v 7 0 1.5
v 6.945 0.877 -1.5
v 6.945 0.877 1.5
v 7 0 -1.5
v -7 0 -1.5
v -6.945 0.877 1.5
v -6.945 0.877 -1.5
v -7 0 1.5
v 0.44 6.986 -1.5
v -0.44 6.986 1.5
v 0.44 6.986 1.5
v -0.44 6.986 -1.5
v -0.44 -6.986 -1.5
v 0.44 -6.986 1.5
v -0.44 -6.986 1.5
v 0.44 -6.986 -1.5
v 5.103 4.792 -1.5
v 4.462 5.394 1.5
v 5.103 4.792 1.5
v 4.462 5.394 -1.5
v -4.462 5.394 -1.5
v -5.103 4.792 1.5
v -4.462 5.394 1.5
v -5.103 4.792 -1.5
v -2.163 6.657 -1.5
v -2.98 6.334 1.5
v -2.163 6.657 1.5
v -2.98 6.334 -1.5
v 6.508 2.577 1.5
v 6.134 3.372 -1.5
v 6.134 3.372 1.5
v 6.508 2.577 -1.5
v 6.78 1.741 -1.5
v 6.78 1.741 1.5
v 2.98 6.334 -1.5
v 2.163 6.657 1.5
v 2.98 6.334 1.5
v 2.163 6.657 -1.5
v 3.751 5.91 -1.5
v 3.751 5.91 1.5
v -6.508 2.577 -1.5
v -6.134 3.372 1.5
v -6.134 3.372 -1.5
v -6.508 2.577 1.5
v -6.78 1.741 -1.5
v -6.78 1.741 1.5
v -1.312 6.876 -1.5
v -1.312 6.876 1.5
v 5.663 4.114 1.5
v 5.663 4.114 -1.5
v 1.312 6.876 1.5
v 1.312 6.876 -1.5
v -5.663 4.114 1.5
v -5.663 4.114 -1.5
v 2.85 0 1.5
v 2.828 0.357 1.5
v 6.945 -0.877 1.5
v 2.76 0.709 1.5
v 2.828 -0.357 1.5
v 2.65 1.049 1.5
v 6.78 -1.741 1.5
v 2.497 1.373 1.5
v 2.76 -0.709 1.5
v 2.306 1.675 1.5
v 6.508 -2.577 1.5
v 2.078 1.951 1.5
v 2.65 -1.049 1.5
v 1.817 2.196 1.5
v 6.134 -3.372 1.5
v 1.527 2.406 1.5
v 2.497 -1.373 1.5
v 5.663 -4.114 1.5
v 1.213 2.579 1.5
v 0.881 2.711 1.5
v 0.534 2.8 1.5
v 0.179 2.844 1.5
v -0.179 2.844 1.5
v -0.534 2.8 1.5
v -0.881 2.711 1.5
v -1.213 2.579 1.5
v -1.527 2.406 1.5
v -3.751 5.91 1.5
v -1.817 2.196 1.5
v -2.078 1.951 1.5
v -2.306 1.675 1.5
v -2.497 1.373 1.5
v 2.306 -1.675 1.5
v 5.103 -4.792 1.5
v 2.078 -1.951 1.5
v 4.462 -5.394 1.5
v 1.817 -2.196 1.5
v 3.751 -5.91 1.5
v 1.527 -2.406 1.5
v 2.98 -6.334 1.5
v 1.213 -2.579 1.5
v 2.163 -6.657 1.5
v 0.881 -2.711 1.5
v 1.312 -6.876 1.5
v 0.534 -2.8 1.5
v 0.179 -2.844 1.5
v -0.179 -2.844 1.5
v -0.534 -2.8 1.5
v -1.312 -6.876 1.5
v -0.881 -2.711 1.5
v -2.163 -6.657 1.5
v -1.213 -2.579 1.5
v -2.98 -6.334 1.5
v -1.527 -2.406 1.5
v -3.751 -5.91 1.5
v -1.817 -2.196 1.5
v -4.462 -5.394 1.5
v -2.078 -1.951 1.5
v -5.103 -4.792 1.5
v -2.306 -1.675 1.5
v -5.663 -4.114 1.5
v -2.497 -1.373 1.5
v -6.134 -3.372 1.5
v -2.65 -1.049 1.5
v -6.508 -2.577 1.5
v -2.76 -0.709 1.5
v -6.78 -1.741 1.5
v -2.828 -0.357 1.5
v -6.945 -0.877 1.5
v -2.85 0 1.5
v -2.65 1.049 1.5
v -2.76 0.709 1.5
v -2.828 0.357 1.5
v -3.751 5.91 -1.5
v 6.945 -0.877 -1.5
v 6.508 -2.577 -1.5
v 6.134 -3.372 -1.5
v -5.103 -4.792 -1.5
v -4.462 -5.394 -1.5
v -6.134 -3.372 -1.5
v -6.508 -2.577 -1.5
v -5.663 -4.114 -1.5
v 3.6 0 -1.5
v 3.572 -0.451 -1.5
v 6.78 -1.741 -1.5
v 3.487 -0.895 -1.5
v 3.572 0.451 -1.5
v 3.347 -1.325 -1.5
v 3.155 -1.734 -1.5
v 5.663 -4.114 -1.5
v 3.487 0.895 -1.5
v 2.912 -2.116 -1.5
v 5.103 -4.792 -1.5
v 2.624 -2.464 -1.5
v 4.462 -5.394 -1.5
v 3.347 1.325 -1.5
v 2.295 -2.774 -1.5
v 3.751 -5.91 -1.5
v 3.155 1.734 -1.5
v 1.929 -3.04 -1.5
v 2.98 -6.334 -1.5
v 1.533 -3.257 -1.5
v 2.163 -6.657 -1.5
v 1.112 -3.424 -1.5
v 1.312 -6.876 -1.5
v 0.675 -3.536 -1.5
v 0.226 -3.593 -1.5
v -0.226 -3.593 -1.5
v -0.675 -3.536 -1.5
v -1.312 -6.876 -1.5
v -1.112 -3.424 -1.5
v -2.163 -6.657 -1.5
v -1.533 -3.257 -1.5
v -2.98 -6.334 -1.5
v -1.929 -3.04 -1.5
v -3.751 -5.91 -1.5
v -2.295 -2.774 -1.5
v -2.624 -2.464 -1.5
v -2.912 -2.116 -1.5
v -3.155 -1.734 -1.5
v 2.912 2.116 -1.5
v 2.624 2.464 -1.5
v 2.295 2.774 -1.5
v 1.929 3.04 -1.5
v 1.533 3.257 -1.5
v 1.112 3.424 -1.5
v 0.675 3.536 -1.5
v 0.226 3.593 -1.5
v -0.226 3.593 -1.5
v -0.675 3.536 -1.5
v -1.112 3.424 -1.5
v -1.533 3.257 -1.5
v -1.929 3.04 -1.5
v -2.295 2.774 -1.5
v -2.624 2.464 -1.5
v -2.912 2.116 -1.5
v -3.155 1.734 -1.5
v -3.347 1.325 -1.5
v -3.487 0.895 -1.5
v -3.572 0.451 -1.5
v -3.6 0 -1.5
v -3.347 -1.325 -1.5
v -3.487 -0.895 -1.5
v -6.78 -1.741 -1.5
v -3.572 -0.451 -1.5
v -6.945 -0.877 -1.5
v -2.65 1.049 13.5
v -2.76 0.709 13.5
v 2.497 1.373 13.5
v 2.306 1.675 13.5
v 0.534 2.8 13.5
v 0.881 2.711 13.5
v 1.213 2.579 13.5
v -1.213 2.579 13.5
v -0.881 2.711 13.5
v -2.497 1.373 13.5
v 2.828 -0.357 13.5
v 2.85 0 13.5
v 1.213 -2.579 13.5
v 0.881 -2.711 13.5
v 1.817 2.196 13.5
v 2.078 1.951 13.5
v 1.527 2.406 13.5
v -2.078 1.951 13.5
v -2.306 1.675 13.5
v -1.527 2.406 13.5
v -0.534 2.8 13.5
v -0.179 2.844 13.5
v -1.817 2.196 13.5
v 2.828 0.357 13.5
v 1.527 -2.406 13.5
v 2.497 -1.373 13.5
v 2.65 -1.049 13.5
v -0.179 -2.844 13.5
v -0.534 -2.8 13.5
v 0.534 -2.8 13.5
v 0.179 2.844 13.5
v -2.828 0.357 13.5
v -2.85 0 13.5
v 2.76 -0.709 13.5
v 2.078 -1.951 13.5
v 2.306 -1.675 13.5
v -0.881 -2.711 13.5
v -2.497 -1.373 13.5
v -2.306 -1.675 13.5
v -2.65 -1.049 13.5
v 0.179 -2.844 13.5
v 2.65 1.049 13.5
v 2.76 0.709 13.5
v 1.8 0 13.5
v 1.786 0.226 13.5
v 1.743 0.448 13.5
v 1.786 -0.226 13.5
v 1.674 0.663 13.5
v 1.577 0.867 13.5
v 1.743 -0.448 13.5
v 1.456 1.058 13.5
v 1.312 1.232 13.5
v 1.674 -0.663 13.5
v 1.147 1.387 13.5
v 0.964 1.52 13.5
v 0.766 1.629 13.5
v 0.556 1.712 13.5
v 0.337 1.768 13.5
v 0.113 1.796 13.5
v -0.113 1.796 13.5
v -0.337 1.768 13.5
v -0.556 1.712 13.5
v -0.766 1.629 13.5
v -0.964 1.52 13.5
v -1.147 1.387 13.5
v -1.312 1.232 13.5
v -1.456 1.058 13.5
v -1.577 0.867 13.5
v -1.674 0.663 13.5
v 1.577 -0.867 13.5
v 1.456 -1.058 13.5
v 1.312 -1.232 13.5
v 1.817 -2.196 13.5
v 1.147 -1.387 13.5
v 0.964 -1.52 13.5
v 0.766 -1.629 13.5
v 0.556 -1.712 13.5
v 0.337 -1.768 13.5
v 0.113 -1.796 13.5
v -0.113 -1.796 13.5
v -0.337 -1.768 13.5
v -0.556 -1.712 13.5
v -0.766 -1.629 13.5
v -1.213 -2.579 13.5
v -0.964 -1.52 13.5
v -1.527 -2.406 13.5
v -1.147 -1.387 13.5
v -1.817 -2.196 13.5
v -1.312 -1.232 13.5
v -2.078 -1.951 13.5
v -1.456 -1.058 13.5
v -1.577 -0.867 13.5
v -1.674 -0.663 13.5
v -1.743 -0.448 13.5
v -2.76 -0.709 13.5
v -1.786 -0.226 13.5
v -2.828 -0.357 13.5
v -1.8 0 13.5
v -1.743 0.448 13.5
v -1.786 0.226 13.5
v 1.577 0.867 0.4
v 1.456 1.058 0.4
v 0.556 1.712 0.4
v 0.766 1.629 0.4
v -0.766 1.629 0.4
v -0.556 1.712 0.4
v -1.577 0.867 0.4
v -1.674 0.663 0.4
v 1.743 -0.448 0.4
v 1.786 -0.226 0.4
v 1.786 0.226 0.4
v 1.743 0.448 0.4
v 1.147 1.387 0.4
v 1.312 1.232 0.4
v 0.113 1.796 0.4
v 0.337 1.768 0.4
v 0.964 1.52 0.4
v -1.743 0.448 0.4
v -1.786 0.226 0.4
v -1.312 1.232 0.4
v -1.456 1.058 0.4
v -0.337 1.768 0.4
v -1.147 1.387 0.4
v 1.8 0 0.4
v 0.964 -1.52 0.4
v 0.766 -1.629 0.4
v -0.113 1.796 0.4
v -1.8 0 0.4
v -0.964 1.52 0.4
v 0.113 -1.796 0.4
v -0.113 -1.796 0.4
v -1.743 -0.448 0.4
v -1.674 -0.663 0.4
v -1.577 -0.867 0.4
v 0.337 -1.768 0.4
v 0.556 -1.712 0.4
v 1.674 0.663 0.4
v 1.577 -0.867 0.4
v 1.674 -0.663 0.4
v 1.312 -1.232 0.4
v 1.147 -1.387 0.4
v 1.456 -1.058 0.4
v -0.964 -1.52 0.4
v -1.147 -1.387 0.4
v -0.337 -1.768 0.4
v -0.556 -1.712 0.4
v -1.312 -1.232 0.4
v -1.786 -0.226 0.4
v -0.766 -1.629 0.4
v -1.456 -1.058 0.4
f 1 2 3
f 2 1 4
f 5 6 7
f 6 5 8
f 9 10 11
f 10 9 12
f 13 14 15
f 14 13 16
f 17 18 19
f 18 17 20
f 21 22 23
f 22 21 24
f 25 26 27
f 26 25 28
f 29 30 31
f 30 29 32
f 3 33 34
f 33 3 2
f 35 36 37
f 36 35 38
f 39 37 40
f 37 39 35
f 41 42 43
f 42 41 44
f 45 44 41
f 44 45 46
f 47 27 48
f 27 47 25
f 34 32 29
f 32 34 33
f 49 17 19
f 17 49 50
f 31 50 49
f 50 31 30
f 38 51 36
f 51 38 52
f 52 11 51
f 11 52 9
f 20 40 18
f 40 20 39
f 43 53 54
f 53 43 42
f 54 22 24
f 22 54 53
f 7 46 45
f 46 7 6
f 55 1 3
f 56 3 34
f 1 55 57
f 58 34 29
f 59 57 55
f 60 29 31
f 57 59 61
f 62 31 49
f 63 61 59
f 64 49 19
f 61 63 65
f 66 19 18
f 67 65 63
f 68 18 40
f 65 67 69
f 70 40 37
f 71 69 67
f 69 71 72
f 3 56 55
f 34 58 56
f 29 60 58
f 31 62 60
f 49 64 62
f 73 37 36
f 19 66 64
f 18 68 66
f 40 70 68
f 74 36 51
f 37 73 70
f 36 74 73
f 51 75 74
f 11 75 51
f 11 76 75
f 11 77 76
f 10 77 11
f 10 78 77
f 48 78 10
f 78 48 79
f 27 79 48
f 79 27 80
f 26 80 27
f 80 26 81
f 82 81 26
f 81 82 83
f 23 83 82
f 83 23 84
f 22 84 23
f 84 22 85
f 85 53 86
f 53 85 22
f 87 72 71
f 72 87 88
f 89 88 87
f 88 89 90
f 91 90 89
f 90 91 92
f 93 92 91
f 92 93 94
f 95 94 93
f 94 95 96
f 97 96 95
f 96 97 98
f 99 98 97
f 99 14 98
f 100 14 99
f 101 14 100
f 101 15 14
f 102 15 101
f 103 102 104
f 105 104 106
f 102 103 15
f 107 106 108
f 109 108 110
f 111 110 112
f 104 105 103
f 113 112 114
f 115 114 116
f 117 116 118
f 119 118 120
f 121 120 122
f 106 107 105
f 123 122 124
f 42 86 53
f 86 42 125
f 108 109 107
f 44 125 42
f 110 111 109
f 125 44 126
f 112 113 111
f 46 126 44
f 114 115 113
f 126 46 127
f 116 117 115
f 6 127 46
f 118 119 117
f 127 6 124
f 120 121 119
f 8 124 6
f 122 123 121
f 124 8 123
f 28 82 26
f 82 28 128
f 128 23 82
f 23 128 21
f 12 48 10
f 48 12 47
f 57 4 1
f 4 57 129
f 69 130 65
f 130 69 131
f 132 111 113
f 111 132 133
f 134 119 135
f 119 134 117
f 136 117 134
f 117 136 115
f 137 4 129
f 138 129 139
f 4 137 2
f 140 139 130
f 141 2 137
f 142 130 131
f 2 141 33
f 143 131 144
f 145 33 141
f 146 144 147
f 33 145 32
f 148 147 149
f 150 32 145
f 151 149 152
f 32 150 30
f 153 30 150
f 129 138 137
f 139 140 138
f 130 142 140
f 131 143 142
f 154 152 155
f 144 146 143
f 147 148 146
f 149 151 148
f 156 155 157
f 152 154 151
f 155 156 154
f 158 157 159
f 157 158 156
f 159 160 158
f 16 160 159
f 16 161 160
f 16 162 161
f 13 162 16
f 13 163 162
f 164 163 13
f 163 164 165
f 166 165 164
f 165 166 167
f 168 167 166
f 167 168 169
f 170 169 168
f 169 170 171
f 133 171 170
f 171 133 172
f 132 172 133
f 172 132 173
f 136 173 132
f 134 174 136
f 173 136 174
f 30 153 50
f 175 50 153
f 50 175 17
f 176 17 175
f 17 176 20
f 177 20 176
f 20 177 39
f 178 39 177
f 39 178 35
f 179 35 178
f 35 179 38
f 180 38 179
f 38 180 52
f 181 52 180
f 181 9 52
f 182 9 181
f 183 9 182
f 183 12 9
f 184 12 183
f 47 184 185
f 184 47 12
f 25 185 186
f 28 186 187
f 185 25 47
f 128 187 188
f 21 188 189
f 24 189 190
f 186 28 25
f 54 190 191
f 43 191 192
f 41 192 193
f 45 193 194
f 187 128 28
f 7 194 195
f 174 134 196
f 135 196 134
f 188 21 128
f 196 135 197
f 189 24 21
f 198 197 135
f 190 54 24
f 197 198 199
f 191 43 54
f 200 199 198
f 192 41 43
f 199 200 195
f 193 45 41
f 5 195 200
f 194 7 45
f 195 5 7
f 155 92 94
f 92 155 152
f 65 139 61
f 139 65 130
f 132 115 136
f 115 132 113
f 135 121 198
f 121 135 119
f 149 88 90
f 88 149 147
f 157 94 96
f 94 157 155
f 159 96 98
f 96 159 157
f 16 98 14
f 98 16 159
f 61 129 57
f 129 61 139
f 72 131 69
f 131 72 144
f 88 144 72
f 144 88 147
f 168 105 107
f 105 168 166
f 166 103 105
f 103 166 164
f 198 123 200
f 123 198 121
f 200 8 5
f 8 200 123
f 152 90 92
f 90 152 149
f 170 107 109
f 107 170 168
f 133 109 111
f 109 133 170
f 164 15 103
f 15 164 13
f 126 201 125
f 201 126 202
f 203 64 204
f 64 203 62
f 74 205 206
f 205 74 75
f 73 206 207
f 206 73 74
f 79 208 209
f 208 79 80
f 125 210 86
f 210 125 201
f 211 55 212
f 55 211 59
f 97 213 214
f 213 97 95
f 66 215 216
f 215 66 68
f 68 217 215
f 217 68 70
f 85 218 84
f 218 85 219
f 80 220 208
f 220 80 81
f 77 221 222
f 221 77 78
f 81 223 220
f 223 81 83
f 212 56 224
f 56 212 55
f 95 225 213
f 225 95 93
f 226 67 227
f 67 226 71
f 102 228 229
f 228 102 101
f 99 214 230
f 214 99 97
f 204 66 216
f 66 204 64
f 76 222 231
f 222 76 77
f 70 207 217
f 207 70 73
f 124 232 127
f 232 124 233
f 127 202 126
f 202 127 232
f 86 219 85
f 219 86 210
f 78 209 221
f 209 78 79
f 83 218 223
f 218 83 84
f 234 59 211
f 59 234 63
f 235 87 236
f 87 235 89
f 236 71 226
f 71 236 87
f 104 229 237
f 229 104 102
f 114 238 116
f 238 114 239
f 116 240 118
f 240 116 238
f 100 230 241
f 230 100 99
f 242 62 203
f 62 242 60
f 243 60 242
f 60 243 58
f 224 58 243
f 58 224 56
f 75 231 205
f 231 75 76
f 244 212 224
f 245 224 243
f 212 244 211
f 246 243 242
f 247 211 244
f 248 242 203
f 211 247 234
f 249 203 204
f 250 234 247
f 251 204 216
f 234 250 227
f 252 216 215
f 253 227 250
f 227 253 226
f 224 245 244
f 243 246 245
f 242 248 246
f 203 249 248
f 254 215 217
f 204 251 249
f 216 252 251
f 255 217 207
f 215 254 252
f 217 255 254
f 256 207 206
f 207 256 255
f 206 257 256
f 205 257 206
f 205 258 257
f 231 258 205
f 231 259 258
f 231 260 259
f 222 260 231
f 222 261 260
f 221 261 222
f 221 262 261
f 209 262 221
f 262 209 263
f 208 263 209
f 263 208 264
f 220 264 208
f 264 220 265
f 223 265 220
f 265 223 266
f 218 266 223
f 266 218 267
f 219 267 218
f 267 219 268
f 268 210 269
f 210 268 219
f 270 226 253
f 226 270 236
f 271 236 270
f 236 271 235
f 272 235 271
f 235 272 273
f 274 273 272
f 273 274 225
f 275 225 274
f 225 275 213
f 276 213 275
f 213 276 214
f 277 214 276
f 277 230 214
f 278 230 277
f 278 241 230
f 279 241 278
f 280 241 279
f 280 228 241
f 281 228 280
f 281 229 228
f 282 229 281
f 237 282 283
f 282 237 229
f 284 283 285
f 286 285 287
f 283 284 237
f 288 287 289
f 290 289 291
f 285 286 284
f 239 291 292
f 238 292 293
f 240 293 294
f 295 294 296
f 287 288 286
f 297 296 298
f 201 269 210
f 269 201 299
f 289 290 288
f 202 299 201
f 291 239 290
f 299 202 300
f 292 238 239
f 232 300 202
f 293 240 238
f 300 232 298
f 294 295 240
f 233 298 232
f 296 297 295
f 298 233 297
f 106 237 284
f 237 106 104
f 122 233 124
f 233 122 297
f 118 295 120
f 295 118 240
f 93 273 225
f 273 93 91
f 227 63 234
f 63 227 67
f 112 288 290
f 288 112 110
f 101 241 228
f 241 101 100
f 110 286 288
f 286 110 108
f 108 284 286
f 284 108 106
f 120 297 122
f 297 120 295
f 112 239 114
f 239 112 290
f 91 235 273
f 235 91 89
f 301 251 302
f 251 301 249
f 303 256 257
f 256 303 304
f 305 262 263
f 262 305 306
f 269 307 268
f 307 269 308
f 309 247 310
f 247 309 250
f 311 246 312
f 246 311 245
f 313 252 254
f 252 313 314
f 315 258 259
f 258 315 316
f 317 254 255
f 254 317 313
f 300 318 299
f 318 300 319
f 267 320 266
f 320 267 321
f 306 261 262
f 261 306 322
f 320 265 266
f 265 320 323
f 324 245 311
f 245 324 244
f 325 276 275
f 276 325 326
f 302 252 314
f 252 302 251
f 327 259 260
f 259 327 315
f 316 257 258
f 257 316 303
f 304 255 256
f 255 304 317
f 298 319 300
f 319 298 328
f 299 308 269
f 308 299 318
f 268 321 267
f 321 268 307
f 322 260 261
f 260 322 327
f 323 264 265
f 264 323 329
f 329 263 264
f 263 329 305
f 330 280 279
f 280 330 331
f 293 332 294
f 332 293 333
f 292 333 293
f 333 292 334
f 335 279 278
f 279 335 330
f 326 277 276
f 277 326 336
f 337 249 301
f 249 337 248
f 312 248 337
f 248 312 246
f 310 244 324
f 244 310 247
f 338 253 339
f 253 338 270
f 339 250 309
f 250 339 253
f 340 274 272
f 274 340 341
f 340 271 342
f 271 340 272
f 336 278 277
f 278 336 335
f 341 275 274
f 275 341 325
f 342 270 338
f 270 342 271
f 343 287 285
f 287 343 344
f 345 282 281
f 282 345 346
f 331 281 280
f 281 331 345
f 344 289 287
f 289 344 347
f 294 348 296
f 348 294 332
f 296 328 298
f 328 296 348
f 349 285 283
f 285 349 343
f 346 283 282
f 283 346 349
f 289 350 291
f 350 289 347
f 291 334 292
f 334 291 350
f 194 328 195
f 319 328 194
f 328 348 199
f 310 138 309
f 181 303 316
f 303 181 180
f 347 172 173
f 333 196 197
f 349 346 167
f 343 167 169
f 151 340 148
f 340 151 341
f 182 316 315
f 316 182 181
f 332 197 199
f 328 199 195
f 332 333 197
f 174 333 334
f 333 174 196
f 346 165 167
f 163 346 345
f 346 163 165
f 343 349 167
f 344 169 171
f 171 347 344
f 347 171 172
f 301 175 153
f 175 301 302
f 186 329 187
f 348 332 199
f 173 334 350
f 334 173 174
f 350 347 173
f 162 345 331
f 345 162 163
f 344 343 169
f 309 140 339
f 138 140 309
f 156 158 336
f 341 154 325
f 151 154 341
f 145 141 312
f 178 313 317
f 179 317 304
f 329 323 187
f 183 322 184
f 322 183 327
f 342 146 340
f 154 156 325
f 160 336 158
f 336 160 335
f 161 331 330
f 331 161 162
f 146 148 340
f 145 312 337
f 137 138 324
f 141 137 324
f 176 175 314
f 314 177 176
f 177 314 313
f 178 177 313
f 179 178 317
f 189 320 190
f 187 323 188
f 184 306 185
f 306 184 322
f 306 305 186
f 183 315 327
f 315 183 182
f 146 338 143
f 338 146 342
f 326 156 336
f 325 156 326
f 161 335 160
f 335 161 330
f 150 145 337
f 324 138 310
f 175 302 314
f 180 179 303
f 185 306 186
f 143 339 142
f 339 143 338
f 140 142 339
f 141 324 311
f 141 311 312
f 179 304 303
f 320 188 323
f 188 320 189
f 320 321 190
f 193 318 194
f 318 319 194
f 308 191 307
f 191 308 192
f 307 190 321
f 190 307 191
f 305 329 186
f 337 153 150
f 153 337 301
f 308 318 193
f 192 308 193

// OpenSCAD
$fn = 50;


difference() {
	union() {
		translate(v = [0, 0, -1.5000000000]) {
			rotate(a = [0, 0, 0]) {
				cylinder(h = 3, r = 7.0000000000);
			}
		}
		translate(v = [0, 0, -1.5000000000]) {
			rotate(a = [0, 0, 0]) {
				cylinder(h = 15, r = 2.8500000000);
			}
		}
	}
	union() {
		translate(v = [0, 0, -125.0000000000]) {
			rotate(a = [0, 0, 0]) {
				cylinder(h = 250, r = 1.8000000000);
			}
		}
		#translate(v = [0, 0, 0.4000000000]) {
			rotate(a = [0, 180, 0]) {
				cylinder(h = 1.9000000000, r1 = 1.8000000000, r2 = 3.6000000000);
			}
		}
		#translate(v = [0, 0, 13.5000000000]) {
			rotate(a = [0, 180, 0]) {
				cylinder(h = 15, r = 1.8000000000);
			}
		}
	}
}
